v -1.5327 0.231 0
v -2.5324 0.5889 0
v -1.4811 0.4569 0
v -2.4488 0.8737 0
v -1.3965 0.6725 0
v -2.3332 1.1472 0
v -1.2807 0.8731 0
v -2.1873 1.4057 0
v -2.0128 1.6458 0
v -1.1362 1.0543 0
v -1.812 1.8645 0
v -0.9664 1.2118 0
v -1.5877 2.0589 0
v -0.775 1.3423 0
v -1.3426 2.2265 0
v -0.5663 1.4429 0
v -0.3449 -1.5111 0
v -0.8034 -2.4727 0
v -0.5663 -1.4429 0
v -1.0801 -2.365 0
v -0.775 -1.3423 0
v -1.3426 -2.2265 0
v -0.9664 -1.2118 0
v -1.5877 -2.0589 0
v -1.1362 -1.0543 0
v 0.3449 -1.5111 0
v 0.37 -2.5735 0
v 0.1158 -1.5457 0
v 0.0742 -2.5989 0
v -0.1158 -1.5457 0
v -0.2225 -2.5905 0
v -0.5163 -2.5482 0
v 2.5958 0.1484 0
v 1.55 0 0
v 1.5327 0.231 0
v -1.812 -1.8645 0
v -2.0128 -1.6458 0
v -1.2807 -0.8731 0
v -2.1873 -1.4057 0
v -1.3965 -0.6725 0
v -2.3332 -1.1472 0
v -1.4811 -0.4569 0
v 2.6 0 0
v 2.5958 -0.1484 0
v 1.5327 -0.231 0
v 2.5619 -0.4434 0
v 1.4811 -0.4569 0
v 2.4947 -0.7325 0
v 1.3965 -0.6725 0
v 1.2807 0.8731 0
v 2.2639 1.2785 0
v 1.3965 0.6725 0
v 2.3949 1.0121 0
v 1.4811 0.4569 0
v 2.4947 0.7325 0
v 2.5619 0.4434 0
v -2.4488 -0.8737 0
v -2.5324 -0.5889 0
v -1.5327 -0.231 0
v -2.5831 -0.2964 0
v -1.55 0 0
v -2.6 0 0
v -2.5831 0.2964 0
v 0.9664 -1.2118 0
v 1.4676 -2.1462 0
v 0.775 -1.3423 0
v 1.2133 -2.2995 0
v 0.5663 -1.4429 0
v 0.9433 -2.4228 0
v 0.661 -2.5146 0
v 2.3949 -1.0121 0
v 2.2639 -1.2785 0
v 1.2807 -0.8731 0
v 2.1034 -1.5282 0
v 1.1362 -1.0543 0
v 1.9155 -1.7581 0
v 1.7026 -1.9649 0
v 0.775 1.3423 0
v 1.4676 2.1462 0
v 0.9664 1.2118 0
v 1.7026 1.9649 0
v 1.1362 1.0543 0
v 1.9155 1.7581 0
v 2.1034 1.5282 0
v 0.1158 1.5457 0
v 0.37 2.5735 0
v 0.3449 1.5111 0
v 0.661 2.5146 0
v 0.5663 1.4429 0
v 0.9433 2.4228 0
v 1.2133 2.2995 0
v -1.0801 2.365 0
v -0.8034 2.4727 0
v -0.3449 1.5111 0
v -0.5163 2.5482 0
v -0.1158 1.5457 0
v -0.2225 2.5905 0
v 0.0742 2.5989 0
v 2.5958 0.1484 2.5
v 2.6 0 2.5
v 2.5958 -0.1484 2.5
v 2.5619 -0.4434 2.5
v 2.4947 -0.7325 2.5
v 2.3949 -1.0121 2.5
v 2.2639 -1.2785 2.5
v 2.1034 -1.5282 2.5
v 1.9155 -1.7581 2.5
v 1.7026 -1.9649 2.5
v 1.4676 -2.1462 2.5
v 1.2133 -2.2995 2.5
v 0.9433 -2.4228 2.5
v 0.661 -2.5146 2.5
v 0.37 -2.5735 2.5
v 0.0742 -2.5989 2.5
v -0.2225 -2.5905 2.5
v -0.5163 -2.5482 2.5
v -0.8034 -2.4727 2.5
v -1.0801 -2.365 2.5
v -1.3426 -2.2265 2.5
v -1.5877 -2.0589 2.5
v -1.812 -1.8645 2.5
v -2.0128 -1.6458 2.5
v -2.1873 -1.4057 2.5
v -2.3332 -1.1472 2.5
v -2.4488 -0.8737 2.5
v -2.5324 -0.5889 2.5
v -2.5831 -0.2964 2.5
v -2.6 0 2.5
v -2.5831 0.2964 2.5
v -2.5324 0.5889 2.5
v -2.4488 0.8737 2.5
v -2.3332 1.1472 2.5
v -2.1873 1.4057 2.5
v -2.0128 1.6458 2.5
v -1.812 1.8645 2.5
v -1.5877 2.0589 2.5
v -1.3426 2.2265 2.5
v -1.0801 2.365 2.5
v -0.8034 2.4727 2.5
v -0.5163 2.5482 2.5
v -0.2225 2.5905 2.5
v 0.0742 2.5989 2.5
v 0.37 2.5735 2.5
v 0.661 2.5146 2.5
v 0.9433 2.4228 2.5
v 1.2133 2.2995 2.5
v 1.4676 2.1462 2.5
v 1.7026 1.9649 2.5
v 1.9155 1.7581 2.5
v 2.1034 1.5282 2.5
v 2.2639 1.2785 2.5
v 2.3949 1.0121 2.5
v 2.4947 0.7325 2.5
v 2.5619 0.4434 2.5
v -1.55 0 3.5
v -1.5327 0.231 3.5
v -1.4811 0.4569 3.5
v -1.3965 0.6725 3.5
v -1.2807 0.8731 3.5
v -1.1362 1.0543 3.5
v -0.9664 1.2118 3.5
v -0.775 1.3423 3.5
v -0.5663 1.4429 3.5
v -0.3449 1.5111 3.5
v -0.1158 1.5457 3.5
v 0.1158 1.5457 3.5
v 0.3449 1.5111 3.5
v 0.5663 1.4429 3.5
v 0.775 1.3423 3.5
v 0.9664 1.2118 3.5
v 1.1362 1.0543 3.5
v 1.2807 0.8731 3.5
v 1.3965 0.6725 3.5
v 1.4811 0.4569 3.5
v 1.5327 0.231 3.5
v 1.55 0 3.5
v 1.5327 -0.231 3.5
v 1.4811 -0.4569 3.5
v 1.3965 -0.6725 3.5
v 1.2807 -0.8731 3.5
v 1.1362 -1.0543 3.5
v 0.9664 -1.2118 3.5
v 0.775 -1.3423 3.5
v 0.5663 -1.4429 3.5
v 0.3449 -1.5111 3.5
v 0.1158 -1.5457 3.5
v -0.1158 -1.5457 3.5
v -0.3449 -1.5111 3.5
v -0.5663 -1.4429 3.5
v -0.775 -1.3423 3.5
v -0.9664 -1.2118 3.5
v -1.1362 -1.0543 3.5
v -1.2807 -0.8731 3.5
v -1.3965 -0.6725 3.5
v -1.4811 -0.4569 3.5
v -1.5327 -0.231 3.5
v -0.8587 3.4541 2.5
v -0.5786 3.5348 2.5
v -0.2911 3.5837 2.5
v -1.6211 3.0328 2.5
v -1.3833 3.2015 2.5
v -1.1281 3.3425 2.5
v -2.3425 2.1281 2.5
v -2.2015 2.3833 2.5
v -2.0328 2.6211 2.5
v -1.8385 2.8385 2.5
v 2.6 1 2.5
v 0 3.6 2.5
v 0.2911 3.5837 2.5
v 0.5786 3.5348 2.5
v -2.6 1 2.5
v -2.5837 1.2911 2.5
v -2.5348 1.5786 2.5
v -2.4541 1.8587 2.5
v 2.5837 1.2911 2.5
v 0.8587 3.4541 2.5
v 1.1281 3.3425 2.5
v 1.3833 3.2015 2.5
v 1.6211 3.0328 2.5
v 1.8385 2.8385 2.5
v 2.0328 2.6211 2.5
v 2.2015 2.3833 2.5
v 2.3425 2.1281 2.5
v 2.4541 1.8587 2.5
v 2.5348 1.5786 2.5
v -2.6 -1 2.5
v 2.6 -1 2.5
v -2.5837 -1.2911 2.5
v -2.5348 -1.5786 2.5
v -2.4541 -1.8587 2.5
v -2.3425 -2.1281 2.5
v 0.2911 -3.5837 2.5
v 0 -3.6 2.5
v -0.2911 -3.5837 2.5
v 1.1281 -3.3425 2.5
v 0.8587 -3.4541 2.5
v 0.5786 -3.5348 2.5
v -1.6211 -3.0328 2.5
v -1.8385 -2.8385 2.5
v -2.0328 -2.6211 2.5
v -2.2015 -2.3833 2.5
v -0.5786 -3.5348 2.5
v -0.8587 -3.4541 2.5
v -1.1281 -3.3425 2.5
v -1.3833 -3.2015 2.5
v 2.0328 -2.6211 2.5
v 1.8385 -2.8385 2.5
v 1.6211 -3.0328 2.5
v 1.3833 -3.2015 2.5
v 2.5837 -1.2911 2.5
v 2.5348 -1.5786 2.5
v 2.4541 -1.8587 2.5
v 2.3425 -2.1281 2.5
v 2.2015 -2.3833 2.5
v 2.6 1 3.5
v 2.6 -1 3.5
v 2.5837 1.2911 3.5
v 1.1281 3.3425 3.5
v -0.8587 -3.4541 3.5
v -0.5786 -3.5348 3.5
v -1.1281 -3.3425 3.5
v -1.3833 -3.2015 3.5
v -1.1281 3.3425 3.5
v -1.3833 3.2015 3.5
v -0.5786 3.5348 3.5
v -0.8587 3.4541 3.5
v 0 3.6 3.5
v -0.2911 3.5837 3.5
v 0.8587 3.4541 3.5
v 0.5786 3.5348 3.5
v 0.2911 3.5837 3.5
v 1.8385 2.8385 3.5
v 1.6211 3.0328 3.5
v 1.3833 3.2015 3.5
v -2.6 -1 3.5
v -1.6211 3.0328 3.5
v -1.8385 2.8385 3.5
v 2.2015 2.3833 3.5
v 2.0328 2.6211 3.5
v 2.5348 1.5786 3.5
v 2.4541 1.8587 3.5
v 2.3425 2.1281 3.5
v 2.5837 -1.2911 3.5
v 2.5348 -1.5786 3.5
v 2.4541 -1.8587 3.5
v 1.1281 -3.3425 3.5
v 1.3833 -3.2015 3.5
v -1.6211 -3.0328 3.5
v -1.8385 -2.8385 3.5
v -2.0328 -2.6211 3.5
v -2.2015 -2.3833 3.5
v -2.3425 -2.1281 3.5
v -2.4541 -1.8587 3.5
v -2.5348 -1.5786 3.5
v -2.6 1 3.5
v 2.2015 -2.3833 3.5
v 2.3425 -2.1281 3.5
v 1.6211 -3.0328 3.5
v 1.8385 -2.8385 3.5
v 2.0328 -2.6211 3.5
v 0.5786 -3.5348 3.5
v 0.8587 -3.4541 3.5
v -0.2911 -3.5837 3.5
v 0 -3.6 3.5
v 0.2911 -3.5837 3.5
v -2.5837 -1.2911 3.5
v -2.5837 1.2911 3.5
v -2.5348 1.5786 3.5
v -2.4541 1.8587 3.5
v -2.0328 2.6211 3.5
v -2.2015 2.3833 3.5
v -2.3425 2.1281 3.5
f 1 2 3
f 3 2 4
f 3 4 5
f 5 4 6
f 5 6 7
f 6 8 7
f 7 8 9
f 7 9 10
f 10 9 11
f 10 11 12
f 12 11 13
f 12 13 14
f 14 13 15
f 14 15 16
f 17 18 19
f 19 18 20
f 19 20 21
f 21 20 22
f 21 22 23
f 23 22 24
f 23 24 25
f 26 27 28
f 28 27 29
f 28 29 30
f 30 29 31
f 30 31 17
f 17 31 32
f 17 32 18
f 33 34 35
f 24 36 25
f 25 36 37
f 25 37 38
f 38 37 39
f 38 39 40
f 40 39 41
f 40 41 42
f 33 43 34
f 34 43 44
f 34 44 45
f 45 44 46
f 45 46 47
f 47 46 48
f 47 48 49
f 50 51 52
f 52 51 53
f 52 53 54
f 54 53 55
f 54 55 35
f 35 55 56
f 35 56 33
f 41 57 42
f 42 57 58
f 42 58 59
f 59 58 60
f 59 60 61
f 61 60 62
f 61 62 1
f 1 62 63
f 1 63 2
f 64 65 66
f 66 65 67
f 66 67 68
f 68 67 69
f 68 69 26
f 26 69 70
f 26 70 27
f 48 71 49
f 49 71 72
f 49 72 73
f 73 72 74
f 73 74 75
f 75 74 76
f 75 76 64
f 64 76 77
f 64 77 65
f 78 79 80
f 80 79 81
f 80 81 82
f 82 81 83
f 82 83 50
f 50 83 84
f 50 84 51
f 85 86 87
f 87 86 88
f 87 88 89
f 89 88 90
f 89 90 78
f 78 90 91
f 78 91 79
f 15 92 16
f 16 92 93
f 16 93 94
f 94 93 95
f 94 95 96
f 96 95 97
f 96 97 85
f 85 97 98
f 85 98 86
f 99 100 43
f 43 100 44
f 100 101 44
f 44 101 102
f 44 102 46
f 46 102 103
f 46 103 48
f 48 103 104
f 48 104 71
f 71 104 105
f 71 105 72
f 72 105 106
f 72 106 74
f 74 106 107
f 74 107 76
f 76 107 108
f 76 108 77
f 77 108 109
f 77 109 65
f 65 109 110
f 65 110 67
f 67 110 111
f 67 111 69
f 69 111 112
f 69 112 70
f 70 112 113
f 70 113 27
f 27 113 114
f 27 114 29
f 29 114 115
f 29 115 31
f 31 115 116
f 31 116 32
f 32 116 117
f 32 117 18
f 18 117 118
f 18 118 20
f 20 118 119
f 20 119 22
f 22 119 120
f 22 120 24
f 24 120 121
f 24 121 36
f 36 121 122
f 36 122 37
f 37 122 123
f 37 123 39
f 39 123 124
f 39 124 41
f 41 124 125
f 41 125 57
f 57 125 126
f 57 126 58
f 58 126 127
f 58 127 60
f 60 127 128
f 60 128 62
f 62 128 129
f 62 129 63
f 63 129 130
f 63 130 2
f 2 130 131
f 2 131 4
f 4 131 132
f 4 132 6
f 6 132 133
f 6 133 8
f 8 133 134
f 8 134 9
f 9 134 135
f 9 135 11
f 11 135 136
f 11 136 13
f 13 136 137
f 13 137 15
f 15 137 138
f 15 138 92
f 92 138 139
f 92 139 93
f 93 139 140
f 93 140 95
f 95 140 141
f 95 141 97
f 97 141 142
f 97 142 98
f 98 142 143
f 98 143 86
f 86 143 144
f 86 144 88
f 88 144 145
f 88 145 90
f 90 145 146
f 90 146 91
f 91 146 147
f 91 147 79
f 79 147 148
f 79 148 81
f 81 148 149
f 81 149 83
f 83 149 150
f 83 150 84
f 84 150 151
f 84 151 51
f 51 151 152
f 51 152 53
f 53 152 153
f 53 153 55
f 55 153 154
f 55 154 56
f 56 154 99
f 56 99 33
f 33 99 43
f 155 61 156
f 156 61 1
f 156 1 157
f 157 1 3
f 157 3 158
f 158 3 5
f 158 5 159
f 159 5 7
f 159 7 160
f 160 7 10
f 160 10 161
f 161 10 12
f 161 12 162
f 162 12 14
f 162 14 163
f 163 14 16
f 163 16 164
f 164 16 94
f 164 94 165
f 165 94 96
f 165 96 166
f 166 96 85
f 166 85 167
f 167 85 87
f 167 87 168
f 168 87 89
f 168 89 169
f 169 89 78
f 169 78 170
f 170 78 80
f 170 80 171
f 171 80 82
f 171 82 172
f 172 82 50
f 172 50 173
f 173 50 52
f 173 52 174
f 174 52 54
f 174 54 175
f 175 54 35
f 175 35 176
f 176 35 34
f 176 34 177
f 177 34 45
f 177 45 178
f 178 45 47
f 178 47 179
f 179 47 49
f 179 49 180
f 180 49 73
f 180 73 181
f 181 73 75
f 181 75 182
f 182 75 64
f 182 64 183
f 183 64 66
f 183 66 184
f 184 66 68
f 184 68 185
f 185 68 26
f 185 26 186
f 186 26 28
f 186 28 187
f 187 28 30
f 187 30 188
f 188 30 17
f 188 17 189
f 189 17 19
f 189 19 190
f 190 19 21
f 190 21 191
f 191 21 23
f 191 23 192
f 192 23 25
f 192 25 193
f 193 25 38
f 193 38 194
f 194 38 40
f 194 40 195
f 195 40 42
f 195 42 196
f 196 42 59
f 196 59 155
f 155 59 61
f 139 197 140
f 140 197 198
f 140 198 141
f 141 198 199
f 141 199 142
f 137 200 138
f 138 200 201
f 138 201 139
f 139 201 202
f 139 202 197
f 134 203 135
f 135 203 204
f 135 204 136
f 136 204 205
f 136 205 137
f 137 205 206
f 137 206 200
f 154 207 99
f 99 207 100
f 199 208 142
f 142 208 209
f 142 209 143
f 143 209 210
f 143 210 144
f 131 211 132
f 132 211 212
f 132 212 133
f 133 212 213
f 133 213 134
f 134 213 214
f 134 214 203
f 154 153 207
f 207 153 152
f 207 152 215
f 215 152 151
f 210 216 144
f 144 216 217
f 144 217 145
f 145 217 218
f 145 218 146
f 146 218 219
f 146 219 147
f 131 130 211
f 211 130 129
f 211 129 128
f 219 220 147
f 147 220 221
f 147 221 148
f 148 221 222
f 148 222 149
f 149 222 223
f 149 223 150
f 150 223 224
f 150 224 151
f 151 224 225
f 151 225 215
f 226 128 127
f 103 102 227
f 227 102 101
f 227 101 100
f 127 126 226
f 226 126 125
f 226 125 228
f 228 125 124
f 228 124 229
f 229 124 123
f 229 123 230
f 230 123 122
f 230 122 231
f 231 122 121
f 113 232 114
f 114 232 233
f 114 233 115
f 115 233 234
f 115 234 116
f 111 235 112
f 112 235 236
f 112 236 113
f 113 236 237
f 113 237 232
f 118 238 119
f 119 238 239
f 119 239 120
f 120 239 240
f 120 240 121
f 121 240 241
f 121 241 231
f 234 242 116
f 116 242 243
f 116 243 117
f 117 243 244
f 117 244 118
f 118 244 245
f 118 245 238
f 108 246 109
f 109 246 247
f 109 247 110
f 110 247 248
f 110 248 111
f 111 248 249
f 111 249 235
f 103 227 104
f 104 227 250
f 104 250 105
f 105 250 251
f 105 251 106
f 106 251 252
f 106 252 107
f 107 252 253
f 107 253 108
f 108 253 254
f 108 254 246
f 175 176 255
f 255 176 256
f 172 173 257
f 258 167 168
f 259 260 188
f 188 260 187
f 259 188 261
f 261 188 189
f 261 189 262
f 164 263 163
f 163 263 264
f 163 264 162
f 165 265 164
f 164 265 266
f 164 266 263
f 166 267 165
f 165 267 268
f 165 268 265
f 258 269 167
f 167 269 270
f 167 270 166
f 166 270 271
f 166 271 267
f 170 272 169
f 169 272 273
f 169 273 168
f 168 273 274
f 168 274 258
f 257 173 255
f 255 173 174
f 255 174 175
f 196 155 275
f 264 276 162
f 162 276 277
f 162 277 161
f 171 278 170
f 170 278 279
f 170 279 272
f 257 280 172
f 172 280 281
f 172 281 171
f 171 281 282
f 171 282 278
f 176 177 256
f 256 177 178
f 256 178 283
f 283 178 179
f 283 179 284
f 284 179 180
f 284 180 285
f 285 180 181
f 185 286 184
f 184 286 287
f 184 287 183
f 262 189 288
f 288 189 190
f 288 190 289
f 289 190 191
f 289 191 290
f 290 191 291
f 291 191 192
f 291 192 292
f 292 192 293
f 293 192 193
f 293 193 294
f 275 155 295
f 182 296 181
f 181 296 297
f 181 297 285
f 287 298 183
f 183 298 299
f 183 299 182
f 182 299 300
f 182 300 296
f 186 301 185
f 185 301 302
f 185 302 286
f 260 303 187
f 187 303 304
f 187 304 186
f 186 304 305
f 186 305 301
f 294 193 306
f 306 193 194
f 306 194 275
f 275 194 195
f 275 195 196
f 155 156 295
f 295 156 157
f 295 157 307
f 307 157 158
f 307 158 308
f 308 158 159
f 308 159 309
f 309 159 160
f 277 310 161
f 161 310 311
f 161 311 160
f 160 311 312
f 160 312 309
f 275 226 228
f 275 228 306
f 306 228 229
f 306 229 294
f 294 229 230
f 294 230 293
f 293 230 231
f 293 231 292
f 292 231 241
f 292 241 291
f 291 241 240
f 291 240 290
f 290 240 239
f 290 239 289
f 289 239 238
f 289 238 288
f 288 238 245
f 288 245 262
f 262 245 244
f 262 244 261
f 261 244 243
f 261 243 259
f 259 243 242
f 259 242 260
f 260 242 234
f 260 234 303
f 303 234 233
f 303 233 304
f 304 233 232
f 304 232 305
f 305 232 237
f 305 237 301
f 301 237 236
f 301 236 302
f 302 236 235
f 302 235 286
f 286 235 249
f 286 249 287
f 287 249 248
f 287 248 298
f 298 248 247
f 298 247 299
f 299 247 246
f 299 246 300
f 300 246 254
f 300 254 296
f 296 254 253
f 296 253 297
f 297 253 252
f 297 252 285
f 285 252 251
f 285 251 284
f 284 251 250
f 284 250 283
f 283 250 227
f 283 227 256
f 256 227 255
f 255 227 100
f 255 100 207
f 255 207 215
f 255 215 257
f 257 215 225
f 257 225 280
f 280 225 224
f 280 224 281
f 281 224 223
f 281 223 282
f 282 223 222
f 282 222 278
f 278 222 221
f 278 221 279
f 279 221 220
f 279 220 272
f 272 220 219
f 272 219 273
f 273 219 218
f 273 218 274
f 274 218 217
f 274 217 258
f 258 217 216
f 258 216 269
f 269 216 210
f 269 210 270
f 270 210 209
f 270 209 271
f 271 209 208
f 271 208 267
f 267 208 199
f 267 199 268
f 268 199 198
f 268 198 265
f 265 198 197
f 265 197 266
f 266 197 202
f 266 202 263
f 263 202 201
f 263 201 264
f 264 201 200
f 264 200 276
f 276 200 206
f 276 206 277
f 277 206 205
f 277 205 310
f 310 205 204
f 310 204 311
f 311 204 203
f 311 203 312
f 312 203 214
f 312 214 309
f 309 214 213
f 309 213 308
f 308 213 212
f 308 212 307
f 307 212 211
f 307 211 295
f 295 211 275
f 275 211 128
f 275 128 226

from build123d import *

# Parameters (mm, degrees)
SZKIC1_R                    = 2.6
SZKIC1_R_2                  = 1.55
DODANIE_WYCI_GNI_CIE1_DEPTH = 2.5
SZKIC2_R                    = 1.55
DODANIE_WYCI_GNI_CIE2_DEPTH = 1


with BuildPart() as part:
    # Szkic1 → Dodanie-wyciągnięcie1 (new body)
    with BuildSketch(Plane.XY):
        Circle(SZKIC1_R)
        Circle(SZKIC1_R_2, mode=Mode.SUBTRACT)
    extrude(amount=DODANIE_WYCI_GNI_CIE1_DEPTH)

    # Szkic2 → Dodanie-wyciągnięcie2 (add)
    with BuildSketch(Plane.XY.offset(2.5)):
        with BuildLine():
            Line((-2.6, -1), (-2.6, 1))
            ThreePointArc((-2.6, 1), (0, 3.6), (2.6, 1))
            Line((2.6, 1), (2.6, -1))
            ThreePointArc((2.6, -1), (0, -3.6), (-2.6, -1))
        make_face()
        Circle(SZKIC2_R, mode=Mode.SUBTRACT)
    extrude(amount=DODANIE_WYCI_GNI_CIE2_DEPTH)


solid = part.part
